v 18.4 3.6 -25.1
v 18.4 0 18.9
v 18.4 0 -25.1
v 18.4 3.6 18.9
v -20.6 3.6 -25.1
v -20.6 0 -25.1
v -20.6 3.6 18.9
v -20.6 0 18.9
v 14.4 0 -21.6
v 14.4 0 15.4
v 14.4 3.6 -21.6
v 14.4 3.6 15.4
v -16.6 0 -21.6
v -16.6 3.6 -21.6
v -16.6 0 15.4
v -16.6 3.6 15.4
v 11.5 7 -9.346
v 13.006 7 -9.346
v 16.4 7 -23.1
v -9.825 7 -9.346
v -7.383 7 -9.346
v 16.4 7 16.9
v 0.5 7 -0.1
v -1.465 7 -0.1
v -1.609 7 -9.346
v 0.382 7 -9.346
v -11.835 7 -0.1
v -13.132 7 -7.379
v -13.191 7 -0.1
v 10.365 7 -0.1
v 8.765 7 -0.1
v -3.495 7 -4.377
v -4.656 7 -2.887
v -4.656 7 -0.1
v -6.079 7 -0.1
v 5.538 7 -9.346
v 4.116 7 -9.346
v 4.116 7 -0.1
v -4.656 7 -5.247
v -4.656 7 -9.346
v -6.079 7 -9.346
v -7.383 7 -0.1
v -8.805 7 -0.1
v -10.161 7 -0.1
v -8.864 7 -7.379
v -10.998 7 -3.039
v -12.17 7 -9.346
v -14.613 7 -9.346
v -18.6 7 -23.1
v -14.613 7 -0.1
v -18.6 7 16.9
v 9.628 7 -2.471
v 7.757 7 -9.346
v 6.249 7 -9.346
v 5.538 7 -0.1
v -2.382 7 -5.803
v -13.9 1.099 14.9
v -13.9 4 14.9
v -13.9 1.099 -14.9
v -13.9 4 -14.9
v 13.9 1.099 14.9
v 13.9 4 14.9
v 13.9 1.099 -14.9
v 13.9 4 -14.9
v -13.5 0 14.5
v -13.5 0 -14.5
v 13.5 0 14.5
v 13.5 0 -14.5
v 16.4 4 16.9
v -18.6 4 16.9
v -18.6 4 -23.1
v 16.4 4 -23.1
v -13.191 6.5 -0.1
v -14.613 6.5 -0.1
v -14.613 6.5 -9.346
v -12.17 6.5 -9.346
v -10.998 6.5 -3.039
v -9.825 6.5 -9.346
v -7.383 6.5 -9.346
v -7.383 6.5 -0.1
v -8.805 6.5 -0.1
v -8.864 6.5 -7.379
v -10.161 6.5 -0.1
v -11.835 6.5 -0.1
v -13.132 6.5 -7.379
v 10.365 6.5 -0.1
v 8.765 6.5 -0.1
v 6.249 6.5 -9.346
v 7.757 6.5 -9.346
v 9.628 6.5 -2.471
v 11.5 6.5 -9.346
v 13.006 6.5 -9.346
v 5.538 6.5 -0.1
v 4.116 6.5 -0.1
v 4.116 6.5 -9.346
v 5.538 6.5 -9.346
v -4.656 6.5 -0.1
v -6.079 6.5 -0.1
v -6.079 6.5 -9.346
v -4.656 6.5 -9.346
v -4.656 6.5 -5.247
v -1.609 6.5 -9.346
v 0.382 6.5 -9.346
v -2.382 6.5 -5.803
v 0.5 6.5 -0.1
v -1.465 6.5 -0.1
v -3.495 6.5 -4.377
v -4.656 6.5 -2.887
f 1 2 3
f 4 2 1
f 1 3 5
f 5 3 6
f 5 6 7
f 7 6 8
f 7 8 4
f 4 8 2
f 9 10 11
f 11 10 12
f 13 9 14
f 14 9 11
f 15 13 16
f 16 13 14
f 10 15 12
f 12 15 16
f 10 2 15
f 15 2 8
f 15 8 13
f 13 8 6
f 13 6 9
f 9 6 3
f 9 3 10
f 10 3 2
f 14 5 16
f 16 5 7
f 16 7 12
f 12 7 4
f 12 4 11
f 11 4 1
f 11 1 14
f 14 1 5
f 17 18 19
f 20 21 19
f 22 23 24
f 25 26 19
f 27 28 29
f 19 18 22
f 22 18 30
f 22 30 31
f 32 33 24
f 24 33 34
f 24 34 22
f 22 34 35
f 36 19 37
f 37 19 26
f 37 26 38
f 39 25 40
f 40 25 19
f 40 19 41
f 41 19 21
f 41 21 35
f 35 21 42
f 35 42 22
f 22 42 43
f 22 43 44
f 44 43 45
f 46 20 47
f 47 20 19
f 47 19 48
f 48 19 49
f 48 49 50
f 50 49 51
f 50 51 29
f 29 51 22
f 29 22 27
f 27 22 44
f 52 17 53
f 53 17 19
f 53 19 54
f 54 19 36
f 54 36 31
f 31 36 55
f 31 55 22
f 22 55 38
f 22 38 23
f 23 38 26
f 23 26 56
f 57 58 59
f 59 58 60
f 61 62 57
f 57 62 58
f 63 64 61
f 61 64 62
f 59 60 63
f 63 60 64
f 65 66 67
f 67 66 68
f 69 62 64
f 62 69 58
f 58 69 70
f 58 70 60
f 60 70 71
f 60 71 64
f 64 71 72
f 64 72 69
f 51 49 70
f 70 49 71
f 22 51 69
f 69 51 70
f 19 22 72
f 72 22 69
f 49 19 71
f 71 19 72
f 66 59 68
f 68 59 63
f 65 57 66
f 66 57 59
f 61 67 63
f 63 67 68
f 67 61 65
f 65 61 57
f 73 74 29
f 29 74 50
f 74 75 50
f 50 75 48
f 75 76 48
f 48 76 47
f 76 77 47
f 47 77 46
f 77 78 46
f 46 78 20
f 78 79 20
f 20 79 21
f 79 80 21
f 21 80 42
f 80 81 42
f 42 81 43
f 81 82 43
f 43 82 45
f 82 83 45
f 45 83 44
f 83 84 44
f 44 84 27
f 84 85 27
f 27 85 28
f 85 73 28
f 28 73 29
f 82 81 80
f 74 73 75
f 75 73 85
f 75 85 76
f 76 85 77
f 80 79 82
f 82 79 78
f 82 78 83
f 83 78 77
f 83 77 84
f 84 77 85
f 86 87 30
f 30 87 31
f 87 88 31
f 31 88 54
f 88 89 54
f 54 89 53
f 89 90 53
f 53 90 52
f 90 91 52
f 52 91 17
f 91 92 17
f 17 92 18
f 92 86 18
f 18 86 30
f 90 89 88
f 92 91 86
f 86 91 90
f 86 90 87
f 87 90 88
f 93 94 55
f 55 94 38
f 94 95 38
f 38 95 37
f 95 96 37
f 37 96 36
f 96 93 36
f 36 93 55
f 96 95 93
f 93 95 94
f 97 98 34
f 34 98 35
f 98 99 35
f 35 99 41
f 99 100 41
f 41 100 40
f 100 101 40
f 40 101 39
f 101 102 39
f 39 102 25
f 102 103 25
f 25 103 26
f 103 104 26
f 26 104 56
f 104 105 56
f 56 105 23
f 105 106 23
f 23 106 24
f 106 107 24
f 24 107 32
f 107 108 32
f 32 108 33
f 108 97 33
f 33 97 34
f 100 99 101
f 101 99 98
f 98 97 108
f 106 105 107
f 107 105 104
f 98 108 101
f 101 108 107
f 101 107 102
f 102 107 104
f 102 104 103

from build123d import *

# Parameters (mm, degrees)
SKETCH1_W           = 27.8
SKETCH1_H           = 29.8
BOSS_EXTRUDE1_DEPTH = 4
SKETCH2_W           = 35
SKETCH2_H           = 40
BOSS_EXTRUDE2_DEPTH = 3
CHAMFER1_SIZE       = 0.4
CHAMFER1_SIZE2      = 1.098990968
SKETCH4_W           = 39
SKETCH4_H           = 44
SKETCH4_W_2         = 31
SKETCH4_H_2         = 37
BOSS_EXTRUDE4_DEPTH = 3.6
SKETCH3_W           = 1.422453426
SKETCH3_H           = 9.245947266
CUT_EXTRUDE1_DEPTH  = 0.5


with BuildPart() as part:
    # Sketch1 → Boss-Extrude1 (new body)
    with BuildSketch(Plane(origin=(0, 0, 0), x_dir=(1, 0, 0), z_dir=(0, 1, 0))):
        Rectangle(SKETCH1_W, SKETCH1_H)
    extrude(amount=BOSS_EXTRUDE1_DEPTH)

    # Sketch2 → Boss-Extrude2 (add)
    with BuildSketch(Plane(origin=(0, 4, 0), x_dir=(1, 0, 0), z_dir=(0, 1, 0))):
        with Locations((-1.1, 3.1)):
            Rectangle(SKETCH2_W, SKETCH2_H)
    extrude(amount=BOSS_EXTRUDE2_DEPTH)

    # Chamfer1
    chamfer1_edges = [part.edges().sort_by_distance(p)[0] for p in [
        (0, 0, -14.9),
        (13.9, 0, 0),
        (0, 0, 14.9),
        (-13.9, 0, 0),
    ]]
    chamfer1_side = [part.faces().sort_by_distance(p)[0] for p in [
        (0, 0, 0),
    ]]
    chamfer(chamfer1_edges, length=CHAMFER1_SIZE, length2=CHAMFER1_SIZE2, reference=chamfer1_side[0])

    # Sketch3 → Cut-Extrude1 (cut)
    with BuildSketch(Plane(origin=(0, 7, 0), x_dir=(1, 0, 0), z_dir=(0, 1, 0))):
        Polygon((-14.613307542, 0.1), (-14.613307542, 9.345947266), (-12.17031787, 9.345947266), (-10.997905086, 3.039366649), (-9.825492301, 9.345947266), (-7.382502629, 9.345947266), (-7.382502629, 0.1), (-8.804956055, 0.1), (-8.864224947, 7.378960888), (-10.160731976, 0.1), (-11.835078195, 0.1), (-13.131585224, 7.378960888), (-13.190854117, 0.1), align=None)
        Polygon((-6.078586989, 0.1), (-6.078586989, 9.345947266), (-4.656133564, 9.345947266), (-4.656133564, 5.247132903), (-1.609342047, 9.345947266), (0.381722318, 9.345947266), (-2.381689805, 5.802778772), (0.500260104, 0.1), (-1.464874121, 0.1), (-3.494833697, 4.376621041), (-4.656133564, 2.887490111), (-4.656133564, 0.1), align=None)
        with Locations((4.826889273, 4.722973633)):
            Rectangle(SKETCH3_W, SKETCH3_H)
        Polygon((8.764566333, 0.1), (6.249342698, 9.345947266), (7.756995157, 9.345947266), (9.627669584, 2.470755709), (11.500196163, 9.345947266), (13.005996469, 9.345947266), (10.364826437, 0.1), align=None)
    extrude(amount=-CUT_EXTRUDE1_DEPTH, mode=Mode.SUBTRACT)


with BuildPart() as body_2:
    # Sketch4 → Boss-Extrude4 (new body)
    with BuildSketch(Plane.XZ):
        with Locations((-1.1, -3.1)):
            Rectangle(SKETCH4_W, SKETCH4_H)
        with Locations((-1.1, -3.1)):
            Rectangle(SKETCH4_W_2, SKETCH4_H_2, mode=Mode.SUBTRACT)
    extrude(amount=-BOSS_EXTRUDE4_DEPTH)


solid = Compound([part.part, body_2.part])
